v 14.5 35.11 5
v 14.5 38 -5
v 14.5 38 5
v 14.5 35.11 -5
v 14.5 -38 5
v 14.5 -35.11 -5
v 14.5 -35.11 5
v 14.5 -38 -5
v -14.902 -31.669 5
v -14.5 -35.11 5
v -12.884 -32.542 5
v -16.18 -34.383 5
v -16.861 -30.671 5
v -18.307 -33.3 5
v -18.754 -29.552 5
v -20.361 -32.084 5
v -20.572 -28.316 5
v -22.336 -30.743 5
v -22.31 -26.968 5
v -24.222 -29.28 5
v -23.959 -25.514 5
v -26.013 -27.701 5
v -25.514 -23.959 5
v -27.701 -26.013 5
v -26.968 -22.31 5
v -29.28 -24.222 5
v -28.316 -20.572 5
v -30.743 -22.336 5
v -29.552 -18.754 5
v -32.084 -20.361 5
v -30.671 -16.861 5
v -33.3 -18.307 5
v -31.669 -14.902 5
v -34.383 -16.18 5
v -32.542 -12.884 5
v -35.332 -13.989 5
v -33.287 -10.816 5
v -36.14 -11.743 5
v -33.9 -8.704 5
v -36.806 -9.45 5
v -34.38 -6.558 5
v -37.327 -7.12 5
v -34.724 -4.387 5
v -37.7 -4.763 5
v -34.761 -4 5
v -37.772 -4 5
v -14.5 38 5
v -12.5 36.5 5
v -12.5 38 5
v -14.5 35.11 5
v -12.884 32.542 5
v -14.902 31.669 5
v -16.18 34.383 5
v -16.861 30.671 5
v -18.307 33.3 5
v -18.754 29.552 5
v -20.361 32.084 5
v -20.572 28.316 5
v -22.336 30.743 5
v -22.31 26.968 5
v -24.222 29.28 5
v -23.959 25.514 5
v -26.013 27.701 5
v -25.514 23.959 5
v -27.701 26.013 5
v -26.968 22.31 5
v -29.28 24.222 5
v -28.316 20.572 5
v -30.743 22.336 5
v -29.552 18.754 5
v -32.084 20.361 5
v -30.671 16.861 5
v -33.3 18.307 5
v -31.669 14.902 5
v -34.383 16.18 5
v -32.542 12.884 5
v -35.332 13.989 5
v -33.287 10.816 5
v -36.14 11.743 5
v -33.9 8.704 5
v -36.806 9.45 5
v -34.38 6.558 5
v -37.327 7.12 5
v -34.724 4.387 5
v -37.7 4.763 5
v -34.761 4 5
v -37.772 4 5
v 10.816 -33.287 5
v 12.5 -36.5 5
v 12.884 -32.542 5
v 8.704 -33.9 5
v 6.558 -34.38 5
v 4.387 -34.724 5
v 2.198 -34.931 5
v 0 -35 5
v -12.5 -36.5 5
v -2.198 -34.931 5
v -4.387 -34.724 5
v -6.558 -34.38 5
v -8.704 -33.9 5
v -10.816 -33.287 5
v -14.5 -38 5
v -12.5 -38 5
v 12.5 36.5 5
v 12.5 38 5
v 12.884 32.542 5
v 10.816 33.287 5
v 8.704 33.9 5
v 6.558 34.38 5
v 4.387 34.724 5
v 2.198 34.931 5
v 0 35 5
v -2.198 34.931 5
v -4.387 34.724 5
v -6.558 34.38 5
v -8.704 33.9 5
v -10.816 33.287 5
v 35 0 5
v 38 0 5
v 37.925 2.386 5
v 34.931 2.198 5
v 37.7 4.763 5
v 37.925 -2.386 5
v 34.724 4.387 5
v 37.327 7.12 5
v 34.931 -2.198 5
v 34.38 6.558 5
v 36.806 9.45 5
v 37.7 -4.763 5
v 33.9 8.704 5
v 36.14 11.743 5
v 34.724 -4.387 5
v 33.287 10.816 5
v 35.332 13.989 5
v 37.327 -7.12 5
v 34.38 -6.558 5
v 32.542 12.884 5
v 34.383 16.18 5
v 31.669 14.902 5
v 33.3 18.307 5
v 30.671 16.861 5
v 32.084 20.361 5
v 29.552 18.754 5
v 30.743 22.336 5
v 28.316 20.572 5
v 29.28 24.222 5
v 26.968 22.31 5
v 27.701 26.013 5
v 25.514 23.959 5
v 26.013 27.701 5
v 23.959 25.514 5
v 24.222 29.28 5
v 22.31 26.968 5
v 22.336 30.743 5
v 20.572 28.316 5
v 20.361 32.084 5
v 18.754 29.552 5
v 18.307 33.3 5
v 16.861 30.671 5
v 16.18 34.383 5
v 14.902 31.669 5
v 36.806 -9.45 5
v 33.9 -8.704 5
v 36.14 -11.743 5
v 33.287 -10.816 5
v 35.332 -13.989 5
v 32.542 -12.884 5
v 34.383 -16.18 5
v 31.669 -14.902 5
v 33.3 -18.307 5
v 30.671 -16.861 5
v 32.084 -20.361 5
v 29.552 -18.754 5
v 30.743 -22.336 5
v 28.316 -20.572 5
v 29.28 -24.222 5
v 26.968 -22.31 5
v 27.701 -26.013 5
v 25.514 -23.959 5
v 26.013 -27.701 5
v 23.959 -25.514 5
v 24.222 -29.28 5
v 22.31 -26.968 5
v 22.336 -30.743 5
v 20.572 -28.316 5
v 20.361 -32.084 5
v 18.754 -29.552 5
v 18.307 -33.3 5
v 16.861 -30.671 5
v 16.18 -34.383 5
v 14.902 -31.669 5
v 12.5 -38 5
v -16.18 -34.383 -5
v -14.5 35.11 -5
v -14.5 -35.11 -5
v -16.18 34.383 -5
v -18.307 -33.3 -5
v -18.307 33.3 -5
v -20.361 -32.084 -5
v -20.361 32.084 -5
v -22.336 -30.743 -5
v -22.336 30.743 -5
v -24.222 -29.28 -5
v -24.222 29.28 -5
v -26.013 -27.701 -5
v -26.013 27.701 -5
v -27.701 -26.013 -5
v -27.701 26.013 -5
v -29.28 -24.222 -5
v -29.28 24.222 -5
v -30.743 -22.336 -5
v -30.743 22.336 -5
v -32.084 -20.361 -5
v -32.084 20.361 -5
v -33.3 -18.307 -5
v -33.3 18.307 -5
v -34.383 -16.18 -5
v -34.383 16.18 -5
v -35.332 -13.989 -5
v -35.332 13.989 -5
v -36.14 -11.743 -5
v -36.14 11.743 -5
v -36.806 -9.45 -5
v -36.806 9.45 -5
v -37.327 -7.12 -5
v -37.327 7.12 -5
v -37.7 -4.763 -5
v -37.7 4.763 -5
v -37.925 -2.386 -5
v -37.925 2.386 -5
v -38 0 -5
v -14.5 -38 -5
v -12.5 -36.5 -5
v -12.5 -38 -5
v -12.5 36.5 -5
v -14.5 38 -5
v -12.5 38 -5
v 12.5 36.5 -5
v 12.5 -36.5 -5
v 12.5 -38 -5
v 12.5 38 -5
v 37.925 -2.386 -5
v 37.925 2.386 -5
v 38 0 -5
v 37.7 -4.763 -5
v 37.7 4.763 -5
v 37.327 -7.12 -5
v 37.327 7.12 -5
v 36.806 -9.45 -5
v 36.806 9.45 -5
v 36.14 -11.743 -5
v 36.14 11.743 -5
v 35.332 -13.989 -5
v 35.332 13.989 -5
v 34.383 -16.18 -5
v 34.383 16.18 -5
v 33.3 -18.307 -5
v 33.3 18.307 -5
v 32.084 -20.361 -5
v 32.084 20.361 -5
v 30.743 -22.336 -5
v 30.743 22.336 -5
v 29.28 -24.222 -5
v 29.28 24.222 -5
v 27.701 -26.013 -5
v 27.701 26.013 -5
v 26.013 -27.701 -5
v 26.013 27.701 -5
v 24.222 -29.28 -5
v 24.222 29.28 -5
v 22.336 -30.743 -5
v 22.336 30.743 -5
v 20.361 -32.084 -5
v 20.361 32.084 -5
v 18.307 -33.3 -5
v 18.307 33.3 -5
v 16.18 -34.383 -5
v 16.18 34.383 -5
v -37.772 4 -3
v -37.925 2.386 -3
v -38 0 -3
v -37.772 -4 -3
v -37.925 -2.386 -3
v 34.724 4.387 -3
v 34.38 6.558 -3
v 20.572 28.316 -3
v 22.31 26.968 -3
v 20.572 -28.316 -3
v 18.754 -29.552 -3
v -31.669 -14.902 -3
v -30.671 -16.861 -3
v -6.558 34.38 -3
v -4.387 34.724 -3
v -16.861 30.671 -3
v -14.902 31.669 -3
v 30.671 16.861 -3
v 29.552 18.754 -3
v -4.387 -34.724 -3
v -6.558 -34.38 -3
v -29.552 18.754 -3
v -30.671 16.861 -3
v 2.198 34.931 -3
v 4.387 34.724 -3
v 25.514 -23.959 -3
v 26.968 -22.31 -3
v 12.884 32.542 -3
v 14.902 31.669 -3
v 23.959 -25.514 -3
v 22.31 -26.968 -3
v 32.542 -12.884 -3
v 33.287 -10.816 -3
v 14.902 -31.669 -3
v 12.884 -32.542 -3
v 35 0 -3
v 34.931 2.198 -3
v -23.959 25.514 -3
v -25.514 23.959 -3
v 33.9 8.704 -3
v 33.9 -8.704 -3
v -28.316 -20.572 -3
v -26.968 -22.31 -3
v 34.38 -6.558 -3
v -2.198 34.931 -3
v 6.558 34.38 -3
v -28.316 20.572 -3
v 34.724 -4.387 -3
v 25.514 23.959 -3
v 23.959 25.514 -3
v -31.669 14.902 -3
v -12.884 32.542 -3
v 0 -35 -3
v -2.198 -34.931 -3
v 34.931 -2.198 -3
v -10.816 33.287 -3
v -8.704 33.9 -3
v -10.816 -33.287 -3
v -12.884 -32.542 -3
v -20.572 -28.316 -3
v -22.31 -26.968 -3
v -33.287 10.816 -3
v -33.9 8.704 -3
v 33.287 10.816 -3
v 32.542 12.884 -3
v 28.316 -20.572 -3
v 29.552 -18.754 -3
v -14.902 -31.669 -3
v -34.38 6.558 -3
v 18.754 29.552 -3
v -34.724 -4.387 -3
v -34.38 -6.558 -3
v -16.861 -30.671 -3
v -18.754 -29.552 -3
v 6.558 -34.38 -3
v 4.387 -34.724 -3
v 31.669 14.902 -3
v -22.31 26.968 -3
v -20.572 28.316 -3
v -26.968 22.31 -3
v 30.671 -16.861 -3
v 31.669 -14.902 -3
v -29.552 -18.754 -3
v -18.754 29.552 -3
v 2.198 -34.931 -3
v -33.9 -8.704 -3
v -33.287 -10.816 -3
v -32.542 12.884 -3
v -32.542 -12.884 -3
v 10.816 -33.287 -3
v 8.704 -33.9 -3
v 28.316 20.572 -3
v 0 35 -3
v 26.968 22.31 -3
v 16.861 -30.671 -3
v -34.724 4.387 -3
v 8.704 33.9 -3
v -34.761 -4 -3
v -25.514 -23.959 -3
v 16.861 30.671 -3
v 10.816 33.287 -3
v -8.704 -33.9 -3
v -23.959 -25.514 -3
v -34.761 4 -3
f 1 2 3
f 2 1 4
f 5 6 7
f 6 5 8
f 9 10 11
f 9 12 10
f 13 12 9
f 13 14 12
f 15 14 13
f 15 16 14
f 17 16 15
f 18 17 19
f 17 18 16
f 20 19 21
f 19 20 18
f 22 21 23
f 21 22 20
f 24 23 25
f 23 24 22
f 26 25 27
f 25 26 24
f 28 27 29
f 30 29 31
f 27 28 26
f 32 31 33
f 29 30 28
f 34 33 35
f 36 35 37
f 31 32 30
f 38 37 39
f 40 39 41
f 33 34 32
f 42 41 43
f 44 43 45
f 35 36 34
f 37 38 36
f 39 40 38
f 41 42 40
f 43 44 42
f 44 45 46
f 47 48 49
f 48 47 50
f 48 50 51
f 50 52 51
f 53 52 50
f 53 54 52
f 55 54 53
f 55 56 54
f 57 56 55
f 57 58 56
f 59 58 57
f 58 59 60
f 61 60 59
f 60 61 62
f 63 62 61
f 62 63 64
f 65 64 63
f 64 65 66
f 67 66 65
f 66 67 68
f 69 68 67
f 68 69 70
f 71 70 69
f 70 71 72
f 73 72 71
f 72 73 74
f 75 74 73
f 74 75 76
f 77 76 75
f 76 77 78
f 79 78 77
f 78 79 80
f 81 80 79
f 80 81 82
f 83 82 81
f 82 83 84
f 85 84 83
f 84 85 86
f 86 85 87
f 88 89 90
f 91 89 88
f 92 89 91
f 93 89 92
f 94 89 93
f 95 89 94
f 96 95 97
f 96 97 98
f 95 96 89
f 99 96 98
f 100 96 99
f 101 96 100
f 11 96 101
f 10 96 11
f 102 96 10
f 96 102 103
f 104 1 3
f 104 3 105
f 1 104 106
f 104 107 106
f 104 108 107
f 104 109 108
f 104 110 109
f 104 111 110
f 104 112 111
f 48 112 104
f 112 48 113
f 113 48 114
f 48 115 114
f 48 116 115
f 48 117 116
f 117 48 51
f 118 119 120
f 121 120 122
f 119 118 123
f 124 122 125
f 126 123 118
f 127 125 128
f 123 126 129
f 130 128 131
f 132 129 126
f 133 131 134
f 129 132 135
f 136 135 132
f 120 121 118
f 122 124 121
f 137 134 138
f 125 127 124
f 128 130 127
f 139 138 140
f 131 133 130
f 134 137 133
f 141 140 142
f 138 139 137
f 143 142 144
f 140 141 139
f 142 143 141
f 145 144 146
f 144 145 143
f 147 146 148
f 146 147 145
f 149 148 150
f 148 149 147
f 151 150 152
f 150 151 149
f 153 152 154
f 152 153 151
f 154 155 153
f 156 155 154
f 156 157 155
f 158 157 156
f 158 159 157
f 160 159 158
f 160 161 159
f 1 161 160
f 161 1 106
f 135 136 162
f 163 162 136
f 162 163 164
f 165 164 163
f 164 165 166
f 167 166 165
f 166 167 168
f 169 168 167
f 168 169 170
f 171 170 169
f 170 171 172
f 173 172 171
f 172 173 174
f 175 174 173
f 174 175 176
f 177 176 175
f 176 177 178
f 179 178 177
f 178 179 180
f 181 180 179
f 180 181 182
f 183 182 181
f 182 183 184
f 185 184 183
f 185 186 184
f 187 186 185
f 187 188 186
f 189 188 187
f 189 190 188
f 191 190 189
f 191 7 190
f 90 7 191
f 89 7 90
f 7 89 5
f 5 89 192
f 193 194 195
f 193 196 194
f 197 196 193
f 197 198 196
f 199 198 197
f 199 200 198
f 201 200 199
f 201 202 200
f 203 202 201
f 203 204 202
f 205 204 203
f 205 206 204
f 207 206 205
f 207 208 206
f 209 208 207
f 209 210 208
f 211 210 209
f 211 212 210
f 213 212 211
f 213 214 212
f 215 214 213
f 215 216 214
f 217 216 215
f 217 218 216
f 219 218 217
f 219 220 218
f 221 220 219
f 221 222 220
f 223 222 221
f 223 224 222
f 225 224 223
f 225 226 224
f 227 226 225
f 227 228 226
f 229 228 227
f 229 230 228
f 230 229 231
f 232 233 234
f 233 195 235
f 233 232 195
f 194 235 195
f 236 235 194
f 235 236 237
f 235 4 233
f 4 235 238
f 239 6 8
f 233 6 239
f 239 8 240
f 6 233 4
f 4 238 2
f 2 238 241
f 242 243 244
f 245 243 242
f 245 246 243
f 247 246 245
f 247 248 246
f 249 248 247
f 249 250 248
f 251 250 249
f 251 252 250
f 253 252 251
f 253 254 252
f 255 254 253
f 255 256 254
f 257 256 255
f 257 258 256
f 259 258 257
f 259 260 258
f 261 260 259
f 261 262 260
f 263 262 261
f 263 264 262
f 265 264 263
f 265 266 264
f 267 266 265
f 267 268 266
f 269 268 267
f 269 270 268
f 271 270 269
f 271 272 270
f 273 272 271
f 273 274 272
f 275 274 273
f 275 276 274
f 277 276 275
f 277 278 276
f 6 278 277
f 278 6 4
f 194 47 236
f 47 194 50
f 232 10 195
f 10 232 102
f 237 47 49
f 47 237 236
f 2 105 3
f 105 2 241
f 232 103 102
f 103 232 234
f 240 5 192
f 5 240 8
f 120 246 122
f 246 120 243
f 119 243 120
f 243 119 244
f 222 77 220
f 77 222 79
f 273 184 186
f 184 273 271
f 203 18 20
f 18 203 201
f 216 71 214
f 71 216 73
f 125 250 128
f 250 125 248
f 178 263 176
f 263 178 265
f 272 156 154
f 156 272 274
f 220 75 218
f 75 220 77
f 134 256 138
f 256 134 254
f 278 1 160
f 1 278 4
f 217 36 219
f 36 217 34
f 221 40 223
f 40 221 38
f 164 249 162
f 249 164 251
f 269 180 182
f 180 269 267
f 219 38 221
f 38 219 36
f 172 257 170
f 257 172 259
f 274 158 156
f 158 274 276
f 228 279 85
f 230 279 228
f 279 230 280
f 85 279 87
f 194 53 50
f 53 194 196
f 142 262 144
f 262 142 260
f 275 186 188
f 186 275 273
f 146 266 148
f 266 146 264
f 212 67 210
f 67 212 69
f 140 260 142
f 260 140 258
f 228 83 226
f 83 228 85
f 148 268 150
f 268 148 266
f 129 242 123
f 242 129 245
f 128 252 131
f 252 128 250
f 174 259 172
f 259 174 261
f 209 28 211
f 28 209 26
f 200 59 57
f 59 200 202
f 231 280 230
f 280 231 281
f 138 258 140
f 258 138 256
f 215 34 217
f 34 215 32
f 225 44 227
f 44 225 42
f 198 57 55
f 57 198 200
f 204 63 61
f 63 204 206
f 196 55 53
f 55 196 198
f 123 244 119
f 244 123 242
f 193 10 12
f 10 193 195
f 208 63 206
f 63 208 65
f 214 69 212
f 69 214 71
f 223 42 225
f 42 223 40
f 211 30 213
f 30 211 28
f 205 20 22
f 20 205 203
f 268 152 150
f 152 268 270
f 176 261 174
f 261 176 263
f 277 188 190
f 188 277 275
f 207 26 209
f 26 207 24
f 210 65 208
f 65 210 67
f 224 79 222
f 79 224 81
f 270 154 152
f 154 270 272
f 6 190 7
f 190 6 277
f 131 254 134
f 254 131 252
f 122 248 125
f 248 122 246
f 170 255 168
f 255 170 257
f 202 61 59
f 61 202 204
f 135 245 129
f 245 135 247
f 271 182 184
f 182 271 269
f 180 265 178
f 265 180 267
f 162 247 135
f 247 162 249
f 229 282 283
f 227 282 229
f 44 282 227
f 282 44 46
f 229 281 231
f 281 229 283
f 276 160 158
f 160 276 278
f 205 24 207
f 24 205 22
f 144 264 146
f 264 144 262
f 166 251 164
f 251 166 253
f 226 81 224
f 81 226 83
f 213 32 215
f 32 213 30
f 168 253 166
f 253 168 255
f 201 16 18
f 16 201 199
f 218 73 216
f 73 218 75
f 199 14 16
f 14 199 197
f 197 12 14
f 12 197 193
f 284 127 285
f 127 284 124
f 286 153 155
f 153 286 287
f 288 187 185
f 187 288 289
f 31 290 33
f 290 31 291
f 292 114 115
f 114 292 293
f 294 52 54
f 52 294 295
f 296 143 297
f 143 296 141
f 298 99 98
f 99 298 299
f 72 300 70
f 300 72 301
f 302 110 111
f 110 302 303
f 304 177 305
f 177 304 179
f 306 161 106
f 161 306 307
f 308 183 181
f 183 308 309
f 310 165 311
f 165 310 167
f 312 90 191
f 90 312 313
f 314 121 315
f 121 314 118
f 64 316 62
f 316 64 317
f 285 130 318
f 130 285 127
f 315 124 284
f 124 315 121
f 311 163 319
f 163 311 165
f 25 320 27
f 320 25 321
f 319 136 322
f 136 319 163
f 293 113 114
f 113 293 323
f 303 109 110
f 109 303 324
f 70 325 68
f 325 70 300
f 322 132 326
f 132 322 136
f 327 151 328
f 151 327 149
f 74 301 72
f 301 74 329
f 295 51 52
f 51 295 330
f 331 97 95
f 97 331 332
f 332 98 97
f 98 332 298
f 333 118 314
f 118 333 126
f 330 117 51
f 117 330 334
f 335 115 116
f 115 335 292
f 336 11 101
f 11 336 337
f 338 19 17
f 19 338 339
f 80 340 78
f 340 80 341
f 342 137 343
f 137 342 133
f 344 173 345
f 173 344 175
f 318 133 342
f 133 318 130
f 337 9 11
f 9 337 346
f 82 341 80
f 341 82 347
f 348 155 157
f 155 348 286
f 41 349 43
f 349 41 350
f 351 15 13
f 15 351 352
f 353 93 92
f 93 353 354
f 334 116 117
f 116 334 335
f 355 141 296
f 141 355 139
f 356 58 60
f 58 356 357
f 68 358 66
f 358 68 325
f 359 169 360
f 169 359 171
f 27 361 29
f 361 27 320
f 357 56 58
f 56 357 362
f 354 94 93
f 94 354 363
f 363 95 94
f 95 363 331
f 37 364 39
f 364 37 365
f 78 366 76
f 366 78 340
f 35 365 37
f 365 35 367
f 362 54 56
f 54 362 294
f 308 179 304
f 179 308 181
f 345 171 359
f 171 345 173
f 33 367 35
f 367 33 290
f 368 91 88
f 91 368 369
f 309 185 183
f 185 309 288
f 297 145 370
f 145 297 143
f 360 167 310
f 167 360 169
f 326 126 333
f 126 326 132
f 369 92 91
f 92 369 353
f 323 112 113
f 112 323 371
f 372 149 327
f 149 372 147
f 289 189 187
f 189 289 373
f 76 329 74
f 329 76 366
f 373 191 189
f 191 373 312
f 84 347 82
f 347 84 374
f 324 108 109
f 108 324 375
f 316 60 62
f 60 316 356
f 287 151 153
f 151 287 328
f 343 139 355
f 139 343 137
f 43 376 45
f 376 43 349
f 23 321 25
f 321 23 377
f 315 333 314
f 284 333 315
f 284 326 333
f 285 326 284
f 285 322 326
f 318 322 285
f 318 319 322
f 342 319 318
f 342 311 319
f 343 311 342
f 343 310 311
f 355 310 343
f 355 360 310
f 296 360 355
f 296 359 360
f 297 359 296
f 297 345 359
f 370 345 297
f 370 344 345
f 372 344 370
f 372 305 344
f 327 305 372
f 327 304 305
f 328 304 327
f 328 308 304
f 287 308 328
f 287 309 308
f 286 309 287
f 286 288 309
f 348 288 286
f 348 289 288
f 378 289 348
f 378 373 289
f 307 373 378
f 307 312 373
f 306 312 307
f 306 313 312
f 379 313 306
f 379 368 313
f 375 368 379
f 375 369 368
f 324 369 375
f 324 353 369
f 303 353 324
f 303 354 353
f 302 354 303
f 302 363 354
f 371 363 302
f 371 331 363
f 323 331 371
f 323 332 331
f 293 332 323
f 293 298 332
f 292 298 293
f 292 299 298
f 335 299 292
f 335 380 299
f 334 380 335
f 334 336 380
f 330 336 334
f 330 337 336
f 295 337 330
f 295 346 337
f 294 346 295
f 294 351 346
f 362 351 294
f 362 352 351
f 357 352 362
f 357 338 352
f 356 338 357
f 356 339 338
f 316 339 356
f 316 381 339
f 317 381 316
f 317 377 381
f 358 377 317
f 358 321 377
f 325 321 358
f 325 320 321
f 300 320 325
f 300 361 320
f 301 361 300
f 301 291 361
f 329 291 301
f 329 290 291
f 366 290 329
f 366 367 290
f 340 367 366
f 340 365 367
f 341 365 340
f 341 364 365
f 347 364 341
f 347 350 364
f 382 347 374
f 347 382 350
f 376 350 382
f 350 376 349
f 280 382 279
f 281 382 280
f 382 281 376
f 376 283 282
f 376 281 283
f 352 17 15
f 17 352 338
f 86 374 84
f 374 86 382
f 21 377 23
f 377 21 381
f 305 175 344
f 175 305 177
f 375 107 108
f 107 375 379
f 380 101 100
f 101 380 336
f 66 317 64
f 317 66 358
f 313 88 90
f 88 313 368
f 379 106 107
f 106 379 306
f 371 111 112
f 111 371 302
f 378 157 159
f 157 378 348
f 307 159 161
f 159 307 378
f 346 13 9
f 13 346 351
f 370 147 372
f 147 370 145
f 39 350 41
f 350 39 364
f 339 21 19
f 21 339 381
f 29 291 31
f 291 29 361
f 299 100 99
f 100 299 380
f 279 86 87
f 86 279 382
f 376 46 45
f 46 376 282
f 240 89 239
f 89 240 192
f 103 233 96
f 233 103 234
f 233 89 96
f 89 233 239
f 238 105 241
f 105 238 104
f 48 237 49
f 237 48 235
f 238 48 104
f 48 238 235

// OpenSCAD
difference(){
    union(){
        cube([29, 76, 10], true);
        cylinder(h=10, r1=38, r2=38, center=true, $fn=100);
    }
    translate([0,0,2]) cylinder(h=10, r1=35, r2=35, center=true, $fn=100);
    translate([-30,0,2]) cube([50, 8, 10], true);
    translate([0,-49,0]) cube([25,25,20], true);
    translate([0,49,0]) cube([25,25,20], true);
}
